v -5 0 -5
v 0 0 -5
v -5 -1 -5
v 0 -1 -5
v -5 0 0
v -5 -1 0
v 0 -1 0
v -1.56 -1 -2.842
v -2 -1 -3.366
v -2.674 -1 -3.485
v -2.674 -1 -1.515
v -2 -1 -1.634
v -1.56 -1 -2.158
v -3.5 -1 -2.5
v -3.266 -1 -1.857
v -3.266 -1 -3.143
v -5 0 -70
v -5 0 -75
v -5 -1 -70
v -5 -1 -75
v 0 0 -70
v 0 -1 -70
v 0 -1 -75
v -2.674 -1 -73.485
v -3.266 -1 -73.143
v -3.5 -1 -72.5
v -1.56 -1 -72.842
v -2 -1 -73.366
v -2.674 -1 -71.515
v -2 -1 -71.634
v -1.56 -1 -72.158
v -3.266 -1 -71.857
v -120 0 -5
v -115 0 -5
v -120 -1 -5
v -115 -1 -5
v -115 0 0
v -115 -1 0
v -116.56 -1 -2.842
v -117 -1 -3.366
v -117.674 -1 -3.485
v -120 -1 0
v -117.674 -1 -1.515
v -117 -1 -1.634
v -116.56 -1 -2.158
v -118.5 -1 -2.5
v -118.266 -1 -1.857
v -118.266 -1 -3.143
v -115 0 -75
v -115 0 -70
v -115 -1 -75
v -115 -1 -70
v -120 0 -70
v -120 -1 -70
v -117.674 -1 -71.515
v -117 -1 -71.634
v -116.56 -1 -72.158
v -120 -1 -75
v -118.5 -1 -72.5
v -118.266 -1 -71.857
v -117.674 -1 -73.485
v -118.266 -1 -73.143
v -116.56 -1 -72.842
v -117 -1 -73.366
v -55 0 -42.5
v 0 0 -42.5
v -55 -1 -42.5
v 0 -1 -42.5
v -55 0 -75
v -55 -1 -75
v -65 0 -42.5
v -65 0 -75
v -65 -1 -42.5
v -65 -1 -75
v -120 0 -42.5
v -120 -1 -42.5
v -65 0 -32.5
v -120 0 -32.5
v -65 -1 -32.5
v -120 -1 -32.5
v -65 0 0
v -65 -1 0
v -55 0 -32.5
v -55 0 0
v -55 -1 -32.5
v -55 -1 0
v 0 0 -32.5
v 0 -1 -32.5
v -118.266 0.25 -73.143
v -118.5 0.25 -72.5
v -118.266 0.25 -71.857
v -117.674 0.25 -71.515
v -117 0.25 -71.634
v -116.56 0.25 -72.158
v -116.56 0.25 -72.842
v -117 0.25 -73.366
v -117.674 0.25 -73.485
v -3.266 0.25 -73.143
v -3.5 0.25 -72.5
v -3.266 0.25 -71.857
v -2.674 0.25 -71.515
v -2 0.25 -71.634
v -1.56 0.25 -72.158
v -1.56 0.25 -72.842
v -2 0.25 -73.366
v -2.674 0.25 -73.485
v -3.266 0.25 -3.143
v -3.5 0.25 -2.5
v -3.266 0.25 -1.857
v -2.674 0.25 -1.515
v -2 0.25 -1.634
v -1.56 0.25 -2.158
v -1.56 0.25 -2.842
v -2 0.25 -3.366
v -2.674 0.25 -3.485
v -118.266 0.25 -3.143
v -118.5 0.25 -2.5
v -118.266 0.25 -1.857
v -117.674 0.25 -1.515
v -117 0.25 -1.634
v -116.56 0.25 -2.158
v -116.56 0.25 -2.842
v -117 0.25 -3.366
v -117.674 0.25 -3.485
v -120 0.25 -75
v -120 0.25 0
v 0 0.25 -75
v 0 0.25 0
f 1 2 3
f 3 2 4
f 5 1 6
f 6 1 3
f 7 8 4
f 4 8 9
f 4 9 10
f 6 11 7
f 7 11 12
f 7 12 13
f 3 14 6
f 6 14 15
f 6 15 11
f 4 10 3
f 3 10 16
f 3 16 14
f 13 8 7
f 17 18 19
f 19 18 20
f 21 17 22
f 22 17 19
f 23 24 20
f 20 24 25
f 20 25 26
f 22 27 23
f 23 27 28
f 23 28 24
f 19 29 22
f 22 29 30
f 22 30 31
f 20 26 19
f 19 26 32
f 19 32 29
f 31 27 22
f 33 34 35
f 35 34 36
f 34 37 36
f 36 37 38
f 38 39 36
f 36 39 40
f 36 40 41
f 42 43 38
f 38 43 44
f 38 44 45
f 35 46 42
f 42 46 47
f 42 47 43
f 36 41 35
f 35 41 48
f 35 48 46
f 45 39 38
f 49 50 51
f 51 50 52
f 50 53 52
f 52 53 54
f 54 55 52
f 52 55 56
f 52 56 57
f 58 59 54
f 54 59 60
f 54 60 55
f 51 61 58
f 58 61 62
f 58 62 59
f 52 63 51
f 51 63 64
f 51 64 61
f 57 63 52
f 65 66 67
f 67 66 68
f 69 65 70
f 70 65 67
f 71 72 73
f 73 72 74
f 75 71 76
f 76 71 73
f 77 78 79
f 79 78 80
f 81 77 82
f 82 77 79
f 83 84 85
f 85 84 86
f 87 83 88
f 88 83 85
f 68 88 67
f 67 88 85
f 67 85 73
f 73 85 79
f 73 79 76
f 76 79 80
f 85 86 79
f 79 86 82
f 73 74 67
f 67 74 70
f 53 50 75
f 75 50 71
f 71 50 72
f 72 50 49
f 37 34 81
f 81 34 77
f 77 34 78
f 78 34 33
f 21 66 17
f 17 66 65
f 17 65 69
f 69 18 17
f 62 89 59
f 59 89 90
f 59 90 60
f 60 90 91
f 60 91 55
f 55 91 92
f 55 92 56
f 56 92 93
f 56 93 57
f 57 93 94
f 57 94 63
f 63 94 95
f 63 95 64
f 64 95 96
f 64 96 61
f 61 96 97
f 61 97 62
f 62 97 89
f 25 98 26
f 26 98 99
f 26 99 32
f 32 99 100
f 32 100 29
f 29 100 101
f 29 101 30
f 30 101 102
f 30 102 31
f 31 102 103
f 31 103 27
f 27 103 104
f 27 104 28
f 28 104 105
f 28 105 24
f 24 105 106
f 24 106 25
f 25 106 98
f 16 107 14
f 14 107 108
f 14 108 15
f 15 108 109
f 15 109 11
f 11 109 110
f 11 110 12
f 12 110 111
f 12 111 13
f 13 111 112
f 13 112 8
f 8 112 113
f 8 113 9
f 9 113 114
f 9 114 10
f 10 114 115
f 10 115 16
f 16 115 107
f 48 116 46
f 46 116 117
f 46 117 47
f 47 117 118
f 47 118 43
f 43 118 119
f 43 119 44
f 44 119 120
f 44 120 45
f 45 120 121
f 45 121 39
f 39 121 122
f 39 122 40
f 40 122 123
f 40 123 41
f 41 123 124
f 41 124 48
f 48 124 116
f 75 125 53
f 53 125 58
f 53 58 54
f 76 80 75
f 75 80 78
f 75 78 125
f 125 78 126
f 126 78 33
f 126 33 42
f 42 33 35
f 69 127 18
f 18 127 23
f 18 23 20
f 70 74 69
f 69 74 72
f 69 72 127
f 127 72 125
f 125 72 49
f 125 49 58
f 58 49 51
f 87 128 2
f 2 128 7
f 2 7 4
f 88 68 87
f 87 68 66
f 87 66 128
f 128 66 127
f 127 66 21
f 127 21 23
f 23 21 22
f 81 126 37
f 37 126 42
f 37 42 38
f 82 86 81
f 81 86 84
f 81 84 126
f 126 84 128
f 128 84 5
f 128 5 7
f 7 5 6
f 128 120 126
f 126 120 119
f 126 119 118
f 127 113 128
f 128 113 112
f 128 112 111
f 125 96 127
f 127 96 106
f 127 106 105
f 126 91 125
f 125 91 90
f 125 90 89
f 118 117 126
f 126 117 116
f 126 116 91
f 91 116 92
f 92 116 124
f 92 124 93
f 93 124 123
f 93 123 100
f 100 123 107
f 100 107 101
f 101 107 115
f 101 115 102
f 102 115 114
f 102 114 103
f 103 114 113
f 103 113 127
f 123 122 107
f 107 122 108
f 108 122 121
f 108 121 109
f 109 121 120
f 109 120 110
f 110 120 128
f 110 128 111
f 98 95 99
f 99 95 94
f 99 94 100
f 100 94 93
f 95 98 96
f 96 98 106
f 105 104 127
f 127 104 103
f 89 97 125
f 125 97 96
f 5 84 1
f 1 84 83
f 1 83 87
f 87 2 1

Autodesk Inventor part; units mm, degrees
ref_plane "YZ Plane" through (0, 0, 0) normal (1, 0, 0) x (0, 1, 0)
ref_plane "XZ Plane" through (0, 0, 0) normal (0, 1, 0) x (-1, 0, 0)
ref_plane "XY Plane" through (0, 0, 0) normal (0, 0, 1) x (1, 0, 0)
sketch "Sketch1" plane through (0, 0, 0) normal (0, 1, 0) x (-1, 0, 0)
  line L0 (0, 0) -> (120, 0)
  line L1 (120, 0) -> (120, -75)
  line L2 (120, -75) -> (0, -75)
  line L3 (0, -75) -> (0, 0)
  line L4 (120, 0) -> (117.5, 0)
  line L5 (117.5, 0) -> (117.5, -2.5)
  line L6 (117.5, -2.5) -> (120, -2.5)
  line L7 (120, -2.5) -> (120, 0)
  line L8 (120, -75) -> (117.5, -75)
  line L9 (117.5, -75) -> (117.5, -72.5)
  line L10 (117.5, -72.5) -> (120, -72.5)
  line L11 (120, -72.5) -> (120, -75)
  line L12 (0, -75) -> (2.5, -75)
  line L13 (2.5, -75) -> (2.5, -72.5)
  line L14 (2.5, -72.5) -> (0, -72.5)
  line L15 (0, -72.5) -> (0, -75)
  line L16 (0, 0) -> (2.5, 0)
  line L17 (2.5, 0) -> (2.5, -2.5)
  line L18 (2.5, -2.5) -> (0, -2.5)
  line L19 (0, -2.5) -> (0, 0)
  line L20 (0, 0) -> (5, 0)
  line L21 (5, 0) -> (5, -5)
  line L22 (5, -5) -> (0, -5)
  line L23 (0, -5) -> (0, 0)
  line L24 (0, -75) -> (5, -75)
  line L25 (5, -75) -> (5, -70)
  line L26 (5, -70) -> (0, -70)
  line L27 (0, -70) -> (0, -75)
  line L28 (120, 0) -> (115, 0)
  line L29 (115, 0) -> (115, -5)
  line L30 (115, -5) -> (120, -5)
  line L31 (120, -5) -> (120, 0)
  line L32 (120, -75) -> (115, -75)
  line L33 (115, -75) -> (115, -70)
  line L34 (115, -70) -> (120, -70)
  line L35 (120, -70) -> (120, -75)
  circle A0 centre (117.5, -72.5) radius 1
  circle A1 centre (117.5, -2.5) radius 1
  circle A2 centre (2.5, -2.5) radius 1
  circle A3 centre (2.5, -72.5) radius 1
  line L36 (0, 0) -> (0, -37.5)
  line L37 (0, -37.5) -> (120, -37.5)
  line L38 (60, 0) -> (60, -75)
  line L39 (0, -32.5) -> (120, -32.5)
  line L40 (120, -32.5) -> (120, -42.5)
  line L41 (120, -42.5) -> (0, -42.5)
  line L42 (0, -42.5) -> (0, -32.5)
  line L43 (0, -32.5) -> (120, -42.5) construction
  line L44 (120, -32.5) -> (0, -42.5) construction
  line L45 (55, 0) -> (65, 0)
  line L46 (65, 0) -> (65, -75)
  line L47 (65, -75) -> (55, -75)
  line L48 (55, -75) -> (55, 0)
  line L49 (55, 0) -> (65, -75) construction
  line L50 (65, 0) -> (55, -75) construction
  point P0 (60, -37.5)
  point P1 (60, -37.5)
  point P2 (55, -32.5)
  point P3 (55, -42.5)
  point P4 (65, -42.5)
  point P5 (65, -32.5)
  dimension "d0" = 120
  dimension "d1" = 75
  dimension "d2" = 2.5
  dimension "d3" = 2.5
  dimension "d4" = 2.5
  dimension "d5" = 2.5
  dimension "d6" = 2.5
  dimension "d7" = 2.5
  dimension "d8" = 2.5
  dimension "d9" = 2.5
  dimension "d10" = 5
  dimension "d11" = 5
  dimension "d12" = 5
  dimension "d13" = 5
  dimension "d14" = 5
  dimension "d15" = 5
  dimension "d16" = 5
  dimension "d17" = 5
  dimension "d18" = 2
  dimension "d19" = 2
  dimension "d20" = 2
  dimension "d21" = 2
  dimension "d22" = 10
  dimension "d23" = 10
extrude "Extrusion1" add sketch "Sketch1" along normal blind 0.25 contours L0 L17 A2 L18 L3 | L0 L21 L22 L3 L18 A2 L17 | L0 L48 L39 L3 L22 L21 | L0 L38 L39 L48 | L39 L48 L37 L3 | L0 L46 L39 L38 | L39 L38 L37 L48 | L37 L48 L41 L3 | L0 L29 L30 L1 L39 L46 | L39 L46 L37 L38 | L37 L38 L41 L48 | L41 L48 L2 L25 L26 L3 | L0 L5 A1 L6 L1 L30 L29 | L39 L1 L37 L46 | L37 L46 L41 L38 | L41 L38 L2 L48 | L26 L25 L2 L13 A3 L14 L3 | L0 L1 L6 A1 L5 | L37 L1 L41 L46 | L41 L46 L2 L38 | L14 A3 L13 L2 L3 | L41 L1 L34 L33 L2 L46 | L1 L10 A0 L9 L2 L33 L34 | L1 L2 L9 A0 L10
extrude "Extrusion2" add sketch "Sketch1" against normal blind 1 contours L0 L17 A2 L18 L3 | L0 L21 L22 L3 L18 A2 L17 | L0 L38 L39 L48 | L39 L48 L37 L3 | L0 L46 L39 L38 | L39 L38 L37 L48 | L37 L48 L41 L3 | L39 L46 L37 L38 | L37 L38 L41 L48 | L0 L5 A1 L6 L1 L30 L29 | L39 L1 L37 L46 | L37 L46 L41 L38 | L41 L38 L2 L48 | L26 L25 L2 L13 A3 L14 L3 | L0 L1 L6 A1 L5 | L37 L1 L41 L46 | L41 L46 L2 L38 | L14 A3 L13 L2 L3 | L1 L10 A0 L9 L2 L33 L34 | L1 L2 L9 A0 L10
properties part number "yellow_plate_cover"
